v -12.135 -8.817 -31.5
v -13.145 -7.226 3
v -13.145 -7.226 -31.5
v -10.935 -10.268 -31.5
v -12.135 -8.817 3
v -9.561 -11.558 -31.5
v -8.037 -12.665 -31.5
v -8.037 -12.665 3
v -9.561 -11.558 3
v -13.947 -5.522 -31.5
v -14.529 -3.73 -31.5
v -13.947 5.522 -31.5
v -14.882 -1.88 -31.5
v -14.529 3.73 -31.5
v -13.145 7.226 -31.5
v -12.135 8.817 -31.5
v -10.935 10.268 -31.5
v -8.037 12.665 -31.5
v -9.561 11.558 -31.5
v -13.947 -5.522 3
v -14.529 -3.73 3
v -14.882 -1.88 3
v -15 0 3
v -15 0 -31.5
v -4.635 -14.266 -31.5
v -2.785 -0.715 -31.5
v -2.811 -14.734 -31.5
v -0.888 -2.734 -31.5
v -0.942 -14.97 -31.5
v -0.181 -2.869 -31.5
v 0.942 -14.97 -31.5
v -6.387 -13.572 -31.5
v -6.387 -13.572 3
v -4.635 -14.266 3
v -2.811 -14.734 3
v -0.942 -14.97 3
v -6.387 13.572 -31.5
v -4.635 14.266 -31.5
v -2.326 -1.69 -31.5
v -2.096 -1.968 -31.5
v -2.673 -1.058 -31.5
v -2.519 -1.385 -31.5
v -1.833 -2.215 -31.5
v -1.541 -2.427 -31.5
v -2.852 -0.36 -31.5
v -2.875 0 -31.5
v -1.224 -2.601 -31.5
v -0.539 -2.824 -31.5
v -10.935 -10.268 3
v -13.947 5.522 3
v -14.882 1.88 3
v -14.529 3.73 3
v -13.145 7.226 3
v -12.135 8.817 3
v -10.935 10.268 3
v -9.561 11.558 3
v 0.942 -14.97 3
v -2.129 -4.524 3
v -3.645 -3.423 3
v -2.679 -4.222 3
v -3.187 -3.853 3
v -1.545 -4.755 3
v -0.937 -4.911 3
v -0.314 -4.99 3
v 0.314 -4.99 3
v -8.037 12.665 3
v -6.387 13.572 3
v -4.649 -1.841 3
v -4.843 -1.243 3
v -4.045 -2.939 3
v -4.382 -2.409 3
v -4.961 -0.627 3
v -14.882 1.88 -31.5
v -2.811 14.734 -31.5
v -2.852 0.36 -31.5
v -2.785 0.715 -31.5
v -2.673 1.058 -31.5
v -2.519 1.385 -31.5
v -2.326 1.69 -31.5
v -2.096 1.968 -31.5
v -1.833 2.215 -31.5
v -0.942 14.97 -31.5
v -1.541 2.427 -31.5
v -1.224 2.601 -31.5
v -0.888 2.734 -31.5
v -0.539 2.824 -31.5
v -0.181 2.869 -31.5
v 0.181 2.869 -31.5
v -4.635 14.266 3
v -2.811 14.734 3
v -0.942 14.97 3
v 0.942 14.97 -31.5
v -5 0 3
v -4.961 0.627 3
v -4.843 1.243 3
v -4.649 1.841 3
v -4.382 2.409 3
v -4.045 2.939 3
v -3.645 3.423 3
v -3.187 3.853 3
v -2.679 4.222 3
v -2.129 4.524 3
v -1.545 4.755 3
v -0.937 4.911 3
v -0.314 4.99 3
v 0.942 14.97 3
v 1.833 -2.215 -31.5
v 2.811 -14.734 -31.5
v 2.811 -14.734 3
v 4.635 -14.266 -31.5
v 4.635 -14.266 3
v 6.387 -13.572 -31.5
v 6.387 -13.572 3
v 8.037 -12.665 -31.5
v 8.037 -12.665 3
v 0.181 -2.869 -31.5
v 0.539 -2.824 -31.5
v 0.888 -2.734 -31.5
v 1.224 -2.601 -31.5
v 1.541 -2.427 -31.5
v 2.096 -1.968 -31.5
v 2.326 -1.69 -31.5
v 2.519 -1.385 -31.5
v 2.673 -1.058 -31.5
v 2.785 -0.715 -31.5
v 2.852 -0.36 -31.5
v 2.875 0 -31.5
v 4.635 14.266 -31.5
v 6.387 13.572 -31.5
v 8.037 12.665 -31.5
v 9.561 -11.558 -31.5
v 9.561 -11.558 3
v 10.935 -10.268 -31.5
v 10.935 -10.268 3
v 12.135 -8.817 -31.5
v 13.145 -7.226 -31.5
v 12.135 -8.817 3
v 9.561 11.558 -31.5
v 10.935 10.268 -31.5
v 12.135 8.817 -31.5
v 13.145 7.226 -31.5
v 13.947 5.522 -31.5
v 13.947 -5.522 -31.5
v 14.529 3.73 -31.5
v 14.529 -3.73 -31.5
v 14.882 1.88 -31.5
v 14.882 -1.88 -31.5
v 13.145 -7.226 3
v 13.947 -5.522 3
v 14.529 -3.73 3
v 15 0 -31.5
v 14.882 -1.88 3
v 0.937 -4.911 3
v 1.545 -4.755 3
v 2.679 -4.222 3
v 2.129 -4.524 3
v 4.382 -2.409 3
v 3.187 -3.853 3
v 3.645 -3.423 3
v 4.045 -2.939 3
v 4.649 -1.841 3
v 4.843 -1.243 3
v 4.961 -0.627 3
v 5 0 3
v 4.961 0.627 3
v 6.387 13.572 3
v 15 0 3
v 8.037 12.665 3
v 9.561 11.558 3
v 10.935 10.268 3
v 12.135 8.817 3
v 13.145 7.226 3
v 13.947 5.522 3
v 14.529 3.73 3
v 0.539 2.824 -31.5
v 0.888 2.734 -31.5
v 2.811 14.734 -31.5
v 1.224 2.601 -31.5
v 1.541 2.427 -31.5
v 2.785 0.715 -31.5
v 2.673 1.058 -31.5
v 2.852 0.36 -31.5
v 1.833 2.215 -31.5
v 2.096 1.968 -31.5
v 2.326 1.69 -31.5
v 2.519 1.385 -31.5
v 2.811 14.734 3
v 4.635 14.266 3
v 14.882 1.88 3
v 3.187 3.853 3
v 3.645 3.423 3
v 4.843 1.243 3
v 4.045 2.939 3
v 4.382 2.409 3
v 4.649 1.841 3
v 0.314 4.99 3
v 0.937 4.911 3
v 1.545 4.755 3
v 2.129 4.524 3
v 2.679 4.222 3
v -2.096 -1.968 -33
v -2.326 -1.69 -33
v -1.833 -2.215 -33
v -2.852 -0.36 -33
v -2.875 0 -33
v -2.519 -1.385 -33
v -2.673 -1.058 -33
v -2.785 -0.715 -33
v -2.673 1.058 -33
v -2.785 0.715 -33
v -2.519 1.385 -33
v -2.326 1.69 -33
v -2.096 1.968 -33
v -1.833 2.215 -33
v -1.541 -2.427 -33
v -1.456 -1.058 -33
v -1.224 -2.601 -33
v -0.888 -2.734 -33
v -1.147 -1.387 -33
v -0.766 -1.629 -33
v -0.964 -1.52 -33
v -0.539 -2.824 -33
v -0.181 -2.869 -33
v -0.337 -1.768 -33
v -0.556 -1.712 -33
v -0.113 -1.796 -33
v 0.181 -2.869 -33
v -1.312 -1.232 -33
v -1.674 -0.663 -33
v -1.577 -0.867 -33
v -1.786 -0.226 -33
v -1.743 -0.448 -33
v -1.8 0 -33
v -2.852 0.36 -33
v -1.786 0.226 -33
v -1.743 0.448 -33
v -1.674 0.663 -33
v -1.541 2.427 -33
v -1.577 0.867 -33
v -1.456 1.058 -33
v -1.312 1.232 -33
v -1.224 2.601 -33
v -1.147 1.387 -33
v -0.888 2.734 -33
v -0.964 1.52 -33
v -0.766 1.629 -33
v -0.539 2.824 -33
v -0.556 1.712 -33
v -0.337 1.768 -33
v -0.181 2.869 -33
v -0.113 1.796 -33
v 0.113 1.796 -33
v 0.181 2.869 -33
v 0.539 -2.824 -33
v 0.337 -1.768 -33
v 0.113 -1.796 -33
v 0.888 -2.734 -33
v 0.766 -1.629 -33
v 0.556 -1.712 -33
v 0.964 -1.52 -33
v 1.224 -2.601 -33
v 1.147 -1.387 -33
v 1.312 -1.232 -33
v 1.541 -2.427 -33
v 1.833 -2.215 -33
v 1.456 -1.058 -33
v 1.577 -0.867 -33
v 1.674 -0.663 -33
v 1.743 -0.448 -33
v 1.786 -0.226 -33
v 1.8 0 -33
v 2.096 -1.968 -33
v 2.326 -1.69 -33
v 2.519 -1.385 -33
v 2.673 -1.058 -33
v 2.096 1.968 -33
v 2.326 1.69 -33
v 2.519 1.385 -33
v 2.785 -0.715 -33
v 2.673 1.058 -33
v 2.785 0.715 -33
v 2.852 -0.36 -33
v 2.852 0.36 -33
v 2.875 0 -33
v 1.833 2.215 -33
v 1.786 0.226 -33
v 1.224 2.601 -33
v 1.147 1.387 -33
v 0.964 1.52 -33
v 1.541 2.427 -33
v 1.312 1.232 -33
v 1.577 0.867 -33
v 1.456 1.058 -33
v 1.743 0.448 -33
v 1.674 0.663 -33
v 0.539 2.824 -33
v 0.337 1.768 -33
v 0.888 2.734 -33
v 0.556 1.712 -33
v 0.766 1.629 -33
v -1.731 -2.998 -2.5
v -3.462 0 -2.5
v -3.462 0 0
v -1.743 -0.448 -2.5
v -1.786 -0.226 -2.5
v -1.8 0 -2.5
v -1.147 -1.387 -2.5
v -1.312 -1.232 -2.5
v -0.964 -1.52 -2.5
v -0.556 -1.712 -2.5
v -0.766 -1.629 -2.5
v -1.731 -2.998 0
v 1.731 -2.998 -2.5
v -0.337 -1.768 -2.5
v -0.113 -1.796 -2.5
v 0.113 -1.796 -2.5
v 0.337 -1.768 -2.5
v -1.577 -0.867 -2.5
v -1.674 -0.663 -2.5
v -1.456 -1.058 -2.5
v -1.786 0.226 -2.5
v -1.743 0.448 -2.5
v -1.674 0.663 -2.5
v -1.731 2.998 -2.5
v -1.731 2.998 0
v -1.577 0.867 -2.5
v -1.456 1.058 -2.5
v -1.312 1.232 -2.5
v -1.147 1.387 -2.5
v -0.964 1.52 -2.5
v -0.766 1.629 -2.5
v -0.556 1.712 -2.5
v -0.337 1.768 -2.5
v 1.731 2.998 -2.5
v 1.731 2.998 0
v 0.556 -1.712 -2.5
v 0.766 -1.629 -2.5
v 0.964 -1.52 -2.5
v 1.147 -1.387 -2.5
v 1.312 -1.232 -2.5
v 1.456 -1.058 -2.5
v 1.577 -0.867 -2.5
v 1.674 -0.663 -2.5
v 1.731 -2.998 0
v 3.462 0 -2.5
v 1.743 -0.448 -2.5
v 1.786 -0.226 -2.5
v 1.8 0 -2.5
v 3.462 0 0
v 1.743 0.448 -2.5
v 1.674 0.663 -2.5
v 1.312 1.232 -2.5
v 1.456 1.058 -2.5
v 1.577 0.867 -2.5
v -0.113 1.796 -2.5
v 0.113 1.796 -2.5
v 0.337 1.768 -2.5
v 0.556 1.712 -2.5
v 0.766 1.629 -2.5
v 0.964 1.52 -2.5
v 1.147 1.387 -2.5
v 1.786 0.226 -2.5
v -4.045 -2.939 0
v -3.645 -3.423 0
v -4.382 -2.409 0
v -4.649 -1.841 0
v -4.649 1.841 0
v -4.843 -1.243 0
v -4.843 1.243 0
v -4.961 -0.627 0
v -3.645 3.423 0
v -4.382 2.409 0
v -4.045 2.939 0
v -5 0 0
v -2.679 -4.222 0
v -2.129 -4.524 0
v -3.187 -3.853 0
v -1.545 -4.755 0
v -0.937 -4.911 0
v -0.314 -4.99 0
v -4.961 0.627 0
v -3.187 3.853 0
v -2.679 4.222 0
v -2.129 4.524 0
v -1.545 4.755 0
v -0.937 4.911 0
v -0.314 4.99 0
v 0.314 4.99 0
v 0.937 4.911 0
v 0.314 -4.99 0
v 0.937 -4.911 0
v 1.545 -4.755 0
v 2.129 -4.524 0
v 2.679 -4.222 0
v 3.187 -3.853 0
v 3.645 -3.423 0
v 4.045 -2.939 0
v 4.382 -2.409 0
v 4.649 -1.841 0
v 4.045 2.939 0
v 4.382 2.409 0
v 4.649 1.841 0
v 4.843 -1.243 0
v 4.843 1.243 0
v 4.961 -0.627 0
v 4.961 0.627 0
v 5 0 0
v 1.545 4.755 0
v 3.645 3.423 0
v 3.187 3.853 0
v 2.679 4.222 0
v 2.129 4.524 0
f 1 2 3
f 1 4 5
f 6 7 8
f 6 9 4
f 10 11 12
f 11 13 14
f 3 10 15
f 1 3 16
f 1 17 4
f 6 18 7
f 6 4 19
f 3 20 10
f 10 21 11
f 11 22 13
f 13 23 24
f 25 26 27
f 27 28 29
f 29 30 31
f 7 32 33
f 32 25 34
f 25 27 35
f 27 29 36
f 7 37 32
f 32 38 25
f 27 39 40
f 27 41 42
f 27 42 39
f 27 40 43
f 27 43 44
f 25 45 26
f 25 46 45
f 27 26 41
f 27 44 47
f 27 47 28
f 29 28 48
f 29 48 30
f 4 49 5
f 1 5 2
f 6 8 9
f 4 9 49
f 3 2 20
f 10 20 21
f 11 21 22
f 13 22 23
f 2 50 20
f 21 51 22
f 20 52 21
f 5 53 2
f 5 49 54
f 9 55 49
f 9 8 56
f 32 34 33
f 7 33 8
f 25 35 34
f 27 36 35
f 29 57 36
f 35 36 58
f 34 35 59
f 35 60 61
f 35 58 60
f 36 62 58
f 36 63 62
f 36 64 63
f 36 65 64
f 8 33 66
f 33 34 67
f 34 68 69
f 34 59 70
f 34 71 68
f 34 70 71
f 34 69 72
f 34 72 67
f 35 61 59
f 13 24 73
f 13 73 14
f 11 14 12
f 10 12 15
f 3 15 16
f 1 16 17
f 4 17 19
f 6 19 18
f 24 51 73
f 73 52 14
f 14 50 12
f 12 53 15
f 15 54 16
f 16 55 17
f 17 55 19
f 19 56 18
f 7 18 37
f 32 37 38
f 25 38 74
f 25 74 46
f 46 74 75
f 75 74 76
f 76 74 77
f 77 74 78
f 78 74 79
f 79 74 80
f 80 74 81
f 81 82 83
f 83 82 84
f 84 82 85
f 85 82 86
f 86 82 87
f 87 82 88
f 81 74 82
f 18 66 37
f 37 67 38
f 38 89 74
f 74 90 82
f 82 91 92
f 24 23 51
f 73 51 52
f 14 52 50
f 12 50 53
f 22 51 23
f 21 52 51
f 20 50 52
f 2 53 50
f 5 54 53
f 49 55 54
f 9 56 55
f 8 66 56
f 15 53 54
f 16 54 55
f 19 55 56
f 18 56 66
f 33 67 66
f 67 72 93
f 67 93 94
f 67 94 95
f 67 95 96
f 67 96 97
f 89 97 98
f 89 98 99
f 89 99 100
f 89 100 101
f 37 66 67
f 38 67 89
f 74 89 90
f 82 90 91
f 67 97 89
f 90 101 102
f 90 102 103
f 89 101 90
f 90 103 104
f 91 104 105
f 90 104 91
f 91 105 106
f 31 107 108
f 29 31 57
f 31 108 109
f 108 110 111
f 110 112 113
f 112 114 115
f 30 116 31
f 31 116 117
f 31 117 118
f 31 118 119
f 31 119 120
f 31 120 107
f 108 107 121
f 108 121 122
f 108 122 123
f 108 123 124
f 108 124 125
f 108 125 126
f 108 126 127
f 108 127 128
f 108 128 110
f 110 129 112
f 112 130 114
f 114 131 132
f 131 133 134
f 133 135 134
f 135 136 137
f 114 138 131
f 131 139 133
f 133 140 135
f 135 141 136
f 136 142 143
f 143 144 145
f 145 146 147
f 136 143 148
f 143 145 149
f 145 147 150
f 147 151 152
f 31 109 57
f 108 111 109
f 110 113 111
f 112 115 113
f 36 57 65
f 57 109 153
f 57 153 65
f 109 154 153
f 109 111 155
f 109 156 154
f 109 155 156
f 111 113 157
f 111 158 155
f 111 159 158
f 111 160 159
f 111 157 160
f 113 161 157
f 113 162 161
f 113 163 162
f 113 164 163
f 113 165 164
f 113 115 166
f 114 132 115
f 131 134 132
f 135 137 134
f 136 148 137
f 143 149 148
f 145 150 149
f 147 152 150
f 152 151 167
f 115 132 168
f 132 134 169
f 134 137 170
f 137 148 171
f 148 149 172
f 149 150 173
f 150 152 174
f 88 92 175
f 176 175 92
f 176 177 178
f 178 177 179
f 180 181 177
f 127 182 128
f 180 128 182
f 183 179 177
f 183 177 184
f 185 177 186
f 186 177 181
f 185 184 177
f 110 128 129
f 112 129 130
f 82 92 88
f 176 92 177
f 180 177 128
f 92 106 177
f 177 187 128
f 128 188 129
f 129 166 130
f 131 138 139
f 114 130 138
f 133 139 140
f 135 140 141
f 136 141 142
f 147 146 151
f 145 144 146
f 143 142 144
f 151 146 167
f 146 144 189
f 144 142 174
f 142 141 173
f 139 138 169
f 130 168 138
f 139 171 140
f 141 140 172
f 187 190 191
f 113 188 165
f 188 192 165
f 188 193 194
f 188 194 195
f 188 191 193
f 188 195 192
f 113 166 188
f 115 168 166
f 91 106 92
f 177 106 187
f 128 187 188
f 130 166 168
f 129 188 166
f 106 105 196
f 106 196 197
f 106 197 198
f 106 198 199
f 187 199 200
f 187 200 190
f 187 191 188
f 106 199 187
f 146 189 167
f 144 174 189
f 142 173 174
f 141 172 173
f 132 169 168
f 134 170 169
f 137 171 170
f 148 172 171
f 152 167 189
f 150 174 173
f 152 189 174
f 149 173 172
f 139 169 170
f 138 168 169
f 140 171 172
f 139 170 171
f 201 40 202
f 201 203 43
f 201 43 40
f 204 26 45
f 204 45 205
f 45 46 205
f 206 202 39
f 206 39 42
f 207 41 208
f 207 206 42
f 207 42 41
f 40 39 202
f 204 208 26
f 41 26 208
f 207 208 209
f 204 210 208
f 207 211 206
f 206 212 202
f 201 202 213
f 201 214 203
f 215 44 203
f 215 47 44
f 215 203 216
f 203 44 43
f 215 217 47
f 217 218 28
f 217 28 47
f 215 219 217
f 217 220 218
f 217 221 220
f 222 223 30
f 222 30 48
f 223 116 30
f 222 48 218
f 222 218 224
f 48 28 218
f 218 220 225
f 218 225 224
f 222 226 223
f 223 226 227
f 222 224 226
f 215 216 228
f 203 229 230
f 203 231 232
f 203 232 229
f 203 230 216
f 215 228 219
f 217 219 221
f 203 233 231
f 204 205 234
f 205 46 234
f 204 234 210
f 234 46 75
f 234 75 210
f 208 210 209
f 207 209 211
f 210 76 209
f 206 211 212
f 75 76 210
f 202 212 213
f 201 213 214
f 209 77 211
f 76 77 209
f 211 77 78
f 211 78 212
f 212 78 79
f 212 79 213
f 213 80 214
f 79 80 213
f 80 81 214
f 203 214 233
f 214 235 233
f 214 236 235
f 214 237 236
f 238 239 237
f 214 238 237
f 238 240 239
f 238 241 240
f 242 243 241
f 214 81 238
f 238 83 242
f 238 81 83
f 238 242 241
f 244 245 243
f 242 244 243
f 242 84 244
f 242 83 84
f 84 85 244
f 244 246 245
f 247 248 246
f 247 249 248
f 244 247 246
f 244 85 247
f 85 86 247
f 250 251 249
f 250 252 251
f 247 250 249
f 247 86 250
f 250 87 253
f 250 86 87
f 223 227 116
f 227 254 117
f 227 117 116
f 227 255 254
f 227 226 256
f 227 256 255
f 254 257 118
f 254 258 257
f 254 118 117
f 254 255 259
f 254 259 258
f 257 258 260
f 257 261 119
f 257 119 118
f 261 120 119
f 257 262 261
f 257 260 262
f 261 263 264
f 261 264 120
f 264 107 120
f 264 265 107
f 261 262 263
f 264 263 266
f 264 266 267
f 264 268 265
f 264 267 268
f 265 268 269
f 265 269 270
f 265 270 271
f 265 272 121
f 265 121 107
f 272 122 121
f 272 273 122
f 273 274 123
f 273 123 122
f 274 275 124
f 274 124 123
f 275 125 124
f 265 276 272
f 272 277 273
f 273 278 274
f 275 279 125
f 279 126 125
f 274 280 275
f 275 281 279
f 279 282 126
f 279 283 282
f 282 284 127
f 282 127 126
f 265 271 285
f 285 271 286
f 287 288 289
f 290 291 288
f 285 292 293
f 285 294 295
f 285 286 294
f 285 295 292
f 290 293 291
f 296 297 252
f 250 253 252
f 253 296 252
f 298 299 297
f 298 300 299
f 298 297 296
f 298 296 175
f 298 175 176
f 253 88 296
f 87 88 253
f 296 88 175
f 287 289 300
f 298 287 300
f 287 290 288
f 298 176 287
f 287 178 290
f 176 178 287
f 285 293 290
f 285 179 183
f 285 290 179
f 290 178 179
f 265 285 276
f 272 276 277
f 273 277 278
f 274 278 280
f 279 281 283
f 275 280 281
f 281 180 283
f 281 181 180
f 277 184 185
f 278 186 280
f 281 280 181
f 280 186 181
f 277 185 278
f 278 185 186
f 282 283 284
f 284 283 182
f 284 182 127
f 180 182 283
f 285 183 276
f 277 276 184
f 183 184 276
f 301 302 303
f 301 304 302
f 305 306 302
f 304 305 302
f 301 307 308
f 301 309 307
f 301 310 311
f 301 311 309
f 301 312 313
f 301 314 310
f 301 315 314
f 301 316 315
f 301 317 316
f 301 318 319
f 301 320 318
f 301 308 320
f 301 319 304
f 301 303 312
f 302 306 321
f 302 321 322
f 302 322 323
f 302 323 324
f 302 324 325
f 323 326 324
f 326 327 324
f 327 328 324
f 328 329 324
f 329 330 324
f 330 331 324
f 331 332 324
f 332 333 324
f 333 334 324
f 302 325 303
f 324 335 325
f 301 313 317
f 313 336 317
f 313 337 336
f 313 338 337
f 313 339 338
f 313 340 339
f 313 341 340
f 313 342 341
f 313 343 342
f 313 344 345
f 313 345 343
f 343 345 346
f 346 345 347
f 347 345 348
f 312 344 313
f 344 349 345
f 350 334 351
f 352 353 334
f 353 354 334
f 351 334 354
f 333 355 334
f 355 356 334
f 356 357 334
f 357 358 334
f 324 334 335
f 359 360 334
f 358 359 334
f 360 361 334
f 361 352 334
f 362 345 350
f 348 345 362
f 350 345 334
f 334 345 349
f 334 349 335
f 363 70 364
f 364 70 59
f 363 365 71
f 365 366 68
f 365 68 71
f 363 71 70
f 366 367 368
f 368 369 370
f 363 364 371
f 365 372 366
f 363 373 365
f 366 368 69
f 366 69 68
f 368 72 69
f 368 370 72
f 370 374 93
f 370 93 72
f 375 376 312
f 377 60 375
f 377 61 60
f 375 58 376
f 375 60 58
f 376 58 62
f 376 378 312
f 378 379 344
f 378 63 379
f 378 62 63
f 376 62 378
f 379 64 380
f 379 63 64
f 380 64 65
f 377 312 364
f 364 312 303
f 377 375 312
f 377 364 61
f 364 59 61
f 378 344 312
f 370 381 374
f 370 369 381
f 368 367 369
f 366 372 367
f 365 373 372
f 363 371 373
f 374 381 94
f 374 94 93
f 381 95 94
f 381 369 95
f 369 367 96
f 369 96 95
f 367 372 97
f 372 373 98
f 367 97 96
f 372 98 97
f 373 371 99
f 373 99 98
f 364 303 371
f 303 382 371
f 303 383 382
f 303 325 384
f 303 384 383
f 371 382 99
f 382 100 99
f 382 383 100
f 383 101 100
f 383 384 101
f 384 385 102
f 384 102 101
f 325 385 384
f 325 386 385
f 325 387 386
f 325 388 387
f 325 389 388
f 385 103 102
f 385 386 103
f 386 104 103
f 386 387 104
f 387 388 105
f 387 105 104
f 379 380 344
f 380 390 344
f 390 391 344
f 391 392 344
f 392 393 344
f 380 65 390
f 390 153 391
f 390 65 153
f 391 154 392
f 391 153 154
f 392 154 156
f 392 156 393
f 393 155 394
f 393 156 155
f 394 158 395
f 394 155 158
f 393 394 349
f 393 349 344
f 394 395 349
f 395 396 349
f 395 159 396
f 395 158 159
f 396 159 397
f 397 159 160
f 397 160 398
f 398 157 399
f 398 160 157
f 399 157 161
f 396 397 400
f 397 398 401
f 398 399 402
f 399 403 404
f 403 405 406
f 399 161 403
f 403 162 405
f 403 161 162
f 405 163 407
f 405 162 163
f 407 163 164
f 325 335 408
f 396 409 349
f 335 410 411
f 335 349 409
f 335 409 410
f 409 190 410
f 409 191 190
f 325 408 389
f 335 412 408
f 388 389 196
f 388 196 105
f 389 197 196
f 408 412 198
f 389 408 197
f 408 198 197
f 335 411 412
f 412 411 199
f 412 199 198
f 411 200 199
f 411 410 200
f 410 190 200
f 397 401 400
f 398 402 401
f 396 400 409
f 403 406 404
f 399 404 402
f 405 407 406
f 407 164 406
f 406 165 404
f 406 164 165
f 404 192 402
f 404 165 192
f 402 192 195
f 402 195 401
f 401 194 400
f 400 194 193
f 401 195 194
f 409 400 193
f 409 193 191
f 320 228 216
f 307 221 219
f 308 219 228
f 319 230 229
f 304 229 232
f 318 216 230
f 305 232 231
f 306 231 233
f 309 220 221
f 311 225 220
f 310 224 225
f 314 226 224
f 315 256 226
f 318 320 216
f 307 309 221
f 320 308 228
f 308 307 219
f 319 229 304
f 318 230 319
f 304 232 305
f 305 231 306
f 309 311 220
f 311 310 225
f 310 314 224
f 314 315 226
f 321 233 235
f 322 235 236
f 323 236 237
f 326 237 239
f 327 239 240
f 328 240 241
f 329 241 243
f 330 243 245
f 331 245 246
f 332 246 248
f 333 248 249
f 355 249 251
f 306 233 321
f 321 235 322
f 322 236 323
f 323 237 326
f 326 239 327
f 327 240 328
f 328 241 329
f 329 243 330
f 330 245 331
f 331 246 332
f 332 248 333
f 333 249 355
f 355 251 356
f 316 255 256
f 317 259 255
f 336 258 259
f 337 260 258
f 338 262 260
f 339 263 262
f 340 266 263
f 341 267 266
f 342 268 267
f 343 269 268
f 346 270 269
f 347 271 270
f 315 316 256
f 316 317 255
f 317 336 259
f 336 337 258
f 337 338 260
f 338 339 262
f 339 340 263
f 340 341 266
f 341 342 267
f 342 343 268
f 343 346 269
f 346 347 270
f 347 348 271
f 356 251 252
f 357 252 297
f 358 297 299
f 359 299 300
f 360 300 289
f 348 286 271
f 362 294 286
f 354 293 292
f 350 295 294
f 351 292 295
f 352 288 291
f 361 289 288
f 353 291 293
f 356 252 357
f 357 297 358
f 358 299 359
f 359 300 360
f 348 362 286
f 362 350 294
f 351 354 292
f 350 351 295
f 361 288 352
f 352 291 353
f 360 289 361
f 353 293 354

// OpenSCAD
$fn = 50;


difference() {
	union() {
		translate(v = [0, 0, -31.5000000000]) {
			cylinder(h = 34.5000000000, r = 15.0000000000);
		}
		#translate(v = [0, 0, -33.0000000000]) {
			cylinder(h = 33, r = 2.8750000000);
		}
	}
	union() {
		translate(v = [0, 0, 0]) {
			rotate(a = [0, 0, 0]) {
				difference() {
					union() {
						translate(v = [0, 0, -2.5000000000]) {
							linear_extrude(height = 2.5000000000) {
								polygon(points = [[3.4620000000, 0.0000000000], [1.7310000000, 2.9981799479], [-1.7310000000, 2.9981799479], [-3.4620000000, 0.0000000000], [-1.7310000000, -2.9981799479], [1.7310000000, -2.9981799479]]);
							}
						}
					}
					union();
				}
			}
		}
		#cylinder(h = 3, r = 5.0000000000);
		#translate(v = [0, 0, -100.0000000000]) {
			cylinder(h = 200, r = 1.8000000000);
		}
	}
}
